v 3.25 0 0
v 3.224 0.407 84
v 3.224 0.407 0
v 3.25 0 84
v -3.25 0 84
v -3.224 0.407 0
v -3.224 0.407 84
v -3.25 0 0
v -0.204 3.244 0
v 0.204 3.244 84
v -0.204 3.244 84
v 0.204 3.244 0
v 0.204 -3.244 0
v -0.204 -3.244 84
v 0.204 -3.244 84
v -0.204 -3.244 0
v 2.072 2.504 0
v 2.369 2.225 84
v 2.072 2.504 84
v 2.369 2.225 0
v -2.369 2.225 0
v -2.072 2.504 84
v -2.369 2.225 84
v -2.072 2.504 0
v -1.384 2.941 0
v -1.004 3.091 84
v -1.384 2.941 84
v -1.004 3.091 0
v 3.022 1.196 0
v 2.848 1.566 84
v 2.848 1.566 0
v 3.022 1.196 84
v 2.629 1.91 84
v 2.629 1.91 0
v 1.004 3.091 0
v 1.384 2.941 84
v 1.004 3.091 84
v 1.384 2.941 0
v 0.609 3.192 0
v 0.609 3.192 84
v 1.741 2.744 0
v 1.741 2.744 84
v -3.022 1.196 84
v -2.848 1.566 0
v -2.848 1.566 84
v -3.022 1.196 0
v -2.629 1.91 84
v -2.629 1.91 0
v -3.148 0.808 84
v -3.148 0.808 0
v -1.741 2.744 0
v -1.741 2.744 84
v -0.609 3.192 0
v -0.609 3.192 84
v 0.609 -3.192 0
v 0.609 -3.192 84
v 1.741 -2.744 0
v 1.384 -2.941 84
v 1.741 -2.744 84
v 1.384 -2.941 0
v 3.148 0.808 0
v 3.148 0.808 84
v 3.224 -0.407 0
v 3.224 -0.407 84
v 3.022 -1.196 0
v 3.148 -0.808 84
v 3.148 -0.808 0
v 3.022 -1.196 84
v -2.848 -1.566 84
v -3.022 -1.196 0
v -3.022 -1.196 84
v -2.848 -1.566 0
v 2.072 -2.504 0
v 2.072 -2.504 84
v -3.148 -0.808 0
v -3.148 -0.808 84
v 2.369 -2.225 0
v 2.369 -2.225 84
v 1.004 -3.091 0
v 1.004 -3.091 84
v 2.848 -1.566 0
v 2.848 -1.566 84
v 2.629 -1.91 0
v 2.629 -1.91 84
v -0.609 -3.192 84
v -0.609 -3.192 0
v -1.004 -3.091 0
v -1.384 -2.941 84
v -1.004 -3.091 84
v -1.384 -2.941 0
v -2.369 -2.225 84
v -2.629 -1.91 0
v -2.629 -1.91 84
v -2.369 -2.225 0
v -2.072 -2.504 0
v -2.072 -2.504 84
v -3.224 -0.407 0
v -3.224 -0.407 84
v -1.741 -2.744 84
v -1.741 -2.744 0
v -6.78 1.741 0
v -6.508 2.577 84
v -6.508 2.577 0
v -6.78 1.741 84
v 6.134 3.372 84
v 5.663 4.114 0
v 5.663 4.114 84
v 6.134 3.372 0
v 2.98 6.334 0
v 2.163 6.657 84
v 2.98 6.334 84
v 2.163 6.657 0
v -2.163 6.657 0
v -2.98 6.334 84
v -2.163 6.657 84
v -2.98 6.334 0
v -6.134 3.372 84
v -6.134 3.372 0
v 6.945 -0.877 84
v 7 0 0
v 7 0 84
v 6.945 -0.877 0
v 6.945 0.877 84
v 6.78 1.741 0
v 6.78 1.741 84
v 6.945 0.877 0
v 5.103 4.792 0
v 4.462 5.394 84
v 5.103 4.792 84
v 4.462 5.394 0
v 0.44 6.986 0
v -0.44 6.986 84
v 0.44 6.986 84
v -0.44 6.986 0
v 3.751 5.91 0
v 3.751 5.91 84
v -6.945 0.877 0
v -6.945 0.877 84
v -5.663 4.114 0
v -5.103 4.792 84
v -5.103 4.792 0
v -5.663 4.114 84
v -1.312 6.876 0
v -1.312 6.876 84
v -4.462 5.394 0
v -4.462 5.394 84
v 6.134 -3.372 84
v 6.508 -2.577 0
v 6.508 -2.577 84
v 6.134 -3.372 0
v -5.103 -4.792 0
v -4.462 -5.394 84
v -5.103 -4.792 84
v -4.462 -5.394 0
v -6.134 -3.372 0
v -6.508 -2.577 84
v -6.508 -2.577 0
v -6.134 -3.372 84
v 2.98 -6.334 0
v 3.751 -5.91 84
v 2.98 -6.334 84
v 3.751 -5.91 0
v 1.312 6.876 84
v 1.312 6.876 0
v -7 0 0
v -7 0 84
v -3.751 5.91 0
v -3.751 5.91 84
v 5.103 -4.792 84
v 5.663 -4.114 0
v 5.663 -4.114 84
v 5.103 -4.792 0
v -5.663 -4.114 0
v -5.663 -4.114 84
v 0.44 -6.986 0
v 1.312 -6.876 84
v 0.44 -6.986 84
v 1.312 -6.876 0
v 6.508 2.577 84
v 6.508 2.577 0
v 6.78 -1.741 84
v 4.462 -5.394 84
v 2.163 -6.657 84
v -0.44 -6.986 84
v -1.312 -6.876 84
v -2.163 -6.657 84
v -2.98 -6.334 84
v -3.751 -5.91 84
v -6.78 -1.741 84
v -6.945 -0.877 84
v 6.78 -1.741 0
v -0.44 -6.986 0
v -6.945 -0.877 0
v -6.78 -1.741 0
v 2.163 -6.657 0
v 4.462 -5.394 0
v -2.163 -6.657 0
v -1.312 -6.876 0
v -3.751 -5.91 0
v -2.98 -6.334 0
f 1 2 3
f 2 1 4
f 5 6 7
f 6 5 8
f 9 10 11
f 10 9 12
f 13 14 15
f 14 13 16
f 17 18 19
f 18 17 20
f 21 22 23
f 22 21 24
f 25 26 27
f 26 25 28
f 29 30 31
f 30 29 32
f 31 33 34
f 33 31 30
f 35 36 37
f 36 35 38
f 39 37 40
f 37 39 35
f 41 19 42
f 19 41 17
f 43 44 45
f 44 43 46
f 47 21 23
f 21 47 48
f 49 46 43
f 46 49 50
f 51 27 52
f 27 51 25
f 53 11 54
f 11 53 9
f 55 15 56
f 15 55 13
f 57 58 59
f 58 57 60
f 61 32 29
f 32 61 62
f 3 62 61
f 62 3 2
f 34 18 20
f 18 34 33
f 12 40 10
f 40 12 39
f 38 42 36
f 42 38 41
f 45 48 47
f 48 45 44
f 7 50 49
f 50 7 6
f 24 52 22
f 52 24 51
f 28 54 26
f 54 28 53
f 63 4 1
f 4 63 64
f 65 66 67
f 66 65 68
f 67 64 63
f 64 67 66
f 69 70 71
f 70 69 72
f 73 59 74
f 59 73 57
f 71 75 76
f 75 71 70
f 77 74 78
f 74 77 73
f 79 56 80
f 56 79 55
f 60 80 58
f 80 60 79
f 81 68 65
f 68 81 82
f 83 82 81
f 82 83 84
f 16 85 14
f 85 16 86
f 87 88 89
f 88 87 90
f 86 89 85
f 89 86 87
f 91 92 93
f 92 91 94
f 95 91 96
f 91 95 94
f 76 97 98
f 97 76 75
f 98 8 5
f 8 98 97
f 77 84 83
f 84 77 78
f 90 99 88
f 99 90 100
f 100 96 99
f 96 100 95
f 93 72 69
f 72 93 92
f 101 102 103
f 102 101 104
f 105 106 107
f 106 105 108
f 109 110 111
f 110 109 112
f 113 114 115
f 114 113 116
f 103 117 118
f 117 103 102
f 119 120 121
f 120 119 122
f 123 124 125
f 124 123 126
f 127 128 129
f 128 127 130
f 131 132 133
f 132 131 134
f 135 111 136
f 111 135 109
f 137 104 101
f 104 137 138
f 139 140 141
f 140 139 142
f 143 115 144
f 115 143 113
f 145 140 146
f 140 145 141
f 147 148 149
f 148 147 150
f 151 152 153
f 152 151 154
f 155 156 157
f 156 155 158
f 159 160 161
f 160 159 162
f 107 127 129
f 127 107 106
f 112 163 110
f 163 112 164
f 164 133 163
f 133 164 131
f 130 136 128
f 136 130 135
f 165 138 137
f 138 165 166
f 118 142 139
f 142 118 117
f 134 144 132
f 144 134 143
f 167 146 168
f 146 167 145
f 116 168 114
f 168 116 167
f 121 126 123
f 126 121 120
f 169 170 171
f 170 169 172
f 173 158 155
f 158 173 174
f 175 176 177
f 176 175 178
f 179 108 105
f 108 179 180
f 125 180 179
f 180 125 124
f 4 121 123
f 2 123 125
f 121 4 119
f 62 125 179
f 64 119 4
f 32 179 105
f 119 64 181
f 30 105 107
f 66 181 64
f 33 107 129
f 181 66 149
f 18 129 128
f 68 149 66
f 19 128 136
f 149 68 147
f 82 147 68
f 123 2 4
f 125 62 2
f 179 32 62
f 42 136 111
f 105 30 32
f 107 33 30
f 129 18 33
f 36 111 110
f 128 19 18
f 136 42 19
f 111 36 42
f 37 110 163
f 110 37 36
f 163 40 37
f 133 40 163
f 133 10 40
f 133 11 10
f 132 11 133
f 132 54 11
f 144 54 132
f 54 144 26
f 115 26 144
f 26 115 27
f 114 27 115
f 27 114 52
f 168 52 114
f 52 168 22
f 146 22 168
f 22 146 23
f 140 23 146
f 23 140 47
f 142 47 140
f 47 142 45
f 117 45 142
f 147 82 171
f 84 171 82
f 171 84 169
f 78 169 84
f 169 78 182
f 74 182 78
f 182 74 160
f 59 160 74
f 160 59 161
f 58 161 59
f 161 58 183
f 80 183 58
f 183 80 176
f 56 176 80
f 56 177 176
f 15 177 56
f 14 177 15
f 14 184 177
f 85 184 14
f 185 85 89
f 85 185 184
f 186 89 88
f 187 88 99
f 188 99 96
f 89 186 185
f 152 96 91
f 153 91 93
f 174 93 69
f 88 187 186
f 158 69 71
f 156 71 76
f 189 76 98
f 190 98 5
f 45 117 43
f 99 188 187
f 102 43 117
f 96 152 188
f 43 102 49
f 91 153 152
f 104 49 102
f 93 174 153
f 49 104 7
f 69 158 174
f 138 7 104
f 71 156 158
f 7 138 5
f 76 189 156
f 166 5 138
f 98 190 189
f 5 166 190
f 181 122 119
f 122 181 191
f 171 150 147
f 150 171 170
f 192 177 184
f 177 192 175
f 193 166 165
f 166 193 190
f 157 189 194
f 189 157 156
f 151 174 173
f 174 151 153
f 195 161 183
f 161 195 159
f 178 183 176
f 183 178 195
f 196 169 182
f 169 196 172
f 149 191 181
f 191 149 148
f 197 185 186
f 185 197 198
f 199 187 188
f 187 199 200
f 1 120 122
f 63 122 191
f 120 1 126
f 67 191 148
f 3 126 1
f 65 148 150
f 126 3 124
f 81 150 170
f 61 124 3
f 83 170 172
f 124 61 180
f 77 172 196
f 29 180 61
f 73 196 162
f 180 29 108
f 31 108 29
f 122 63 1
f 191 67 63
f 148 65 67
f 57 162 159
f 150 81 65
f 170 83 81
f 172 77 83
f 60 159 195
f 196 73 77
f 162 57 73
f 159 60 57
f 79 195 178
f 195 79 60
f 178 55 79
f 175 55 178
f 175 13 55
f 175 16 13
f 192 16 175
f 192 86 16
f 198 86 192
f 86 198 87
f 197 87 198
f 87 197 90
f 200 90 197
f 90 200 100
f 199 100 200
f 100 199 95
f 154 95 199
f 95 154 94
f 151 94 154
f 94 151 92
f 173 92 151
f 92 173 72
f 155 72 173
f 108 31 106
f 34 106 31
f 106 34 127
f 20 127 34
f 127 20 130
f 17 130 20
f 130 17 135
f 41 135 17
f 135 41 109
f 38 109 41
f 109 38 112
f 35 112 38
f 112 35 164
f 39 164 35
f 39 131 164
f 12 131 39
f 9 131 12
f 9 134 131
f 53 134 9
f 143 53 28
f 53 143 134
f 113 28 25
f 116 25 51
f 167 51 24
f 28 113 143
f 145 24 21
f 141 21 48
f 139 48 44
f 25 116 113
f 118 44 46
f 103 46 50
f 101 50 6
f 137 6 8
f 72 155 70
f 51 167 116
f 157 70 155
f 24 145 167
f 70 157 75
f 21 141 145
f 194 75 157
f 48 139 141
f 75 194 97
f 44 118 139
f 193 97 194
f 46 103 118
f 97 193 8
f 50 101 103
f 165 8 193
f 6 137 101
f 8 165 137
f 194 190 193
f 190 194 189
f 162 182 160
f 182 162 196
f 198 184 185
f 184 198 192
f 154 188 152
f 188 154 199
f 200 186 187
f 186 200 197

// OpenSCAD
$fn = 50;


difference() {
	union() {
		cylinder(h = 84, r = 7.0000000000);
	}
	union() {
		translate(v = [0.0000000000, 0.0000000000, -100.0000000000]) {
			cylinder(h = 200, r = 3.2500000000);
		}
		translate(v = [0.0000000000, 0.0000000000, -100.0000000000]) {
			cylinder(h = 200, r = 3.2500000000);
		}
		translate(v = [0.0000000000, 0.0000000000, -100.0000000000]) {
			cylinder(h = 200, r = 3.2500000000);
		}
		translate(v = [0.0000000000, 0.0000000000, -100.0000000000]) {
			cylinder(h = 200, r = 3.2500000000);
		}
	}
}
